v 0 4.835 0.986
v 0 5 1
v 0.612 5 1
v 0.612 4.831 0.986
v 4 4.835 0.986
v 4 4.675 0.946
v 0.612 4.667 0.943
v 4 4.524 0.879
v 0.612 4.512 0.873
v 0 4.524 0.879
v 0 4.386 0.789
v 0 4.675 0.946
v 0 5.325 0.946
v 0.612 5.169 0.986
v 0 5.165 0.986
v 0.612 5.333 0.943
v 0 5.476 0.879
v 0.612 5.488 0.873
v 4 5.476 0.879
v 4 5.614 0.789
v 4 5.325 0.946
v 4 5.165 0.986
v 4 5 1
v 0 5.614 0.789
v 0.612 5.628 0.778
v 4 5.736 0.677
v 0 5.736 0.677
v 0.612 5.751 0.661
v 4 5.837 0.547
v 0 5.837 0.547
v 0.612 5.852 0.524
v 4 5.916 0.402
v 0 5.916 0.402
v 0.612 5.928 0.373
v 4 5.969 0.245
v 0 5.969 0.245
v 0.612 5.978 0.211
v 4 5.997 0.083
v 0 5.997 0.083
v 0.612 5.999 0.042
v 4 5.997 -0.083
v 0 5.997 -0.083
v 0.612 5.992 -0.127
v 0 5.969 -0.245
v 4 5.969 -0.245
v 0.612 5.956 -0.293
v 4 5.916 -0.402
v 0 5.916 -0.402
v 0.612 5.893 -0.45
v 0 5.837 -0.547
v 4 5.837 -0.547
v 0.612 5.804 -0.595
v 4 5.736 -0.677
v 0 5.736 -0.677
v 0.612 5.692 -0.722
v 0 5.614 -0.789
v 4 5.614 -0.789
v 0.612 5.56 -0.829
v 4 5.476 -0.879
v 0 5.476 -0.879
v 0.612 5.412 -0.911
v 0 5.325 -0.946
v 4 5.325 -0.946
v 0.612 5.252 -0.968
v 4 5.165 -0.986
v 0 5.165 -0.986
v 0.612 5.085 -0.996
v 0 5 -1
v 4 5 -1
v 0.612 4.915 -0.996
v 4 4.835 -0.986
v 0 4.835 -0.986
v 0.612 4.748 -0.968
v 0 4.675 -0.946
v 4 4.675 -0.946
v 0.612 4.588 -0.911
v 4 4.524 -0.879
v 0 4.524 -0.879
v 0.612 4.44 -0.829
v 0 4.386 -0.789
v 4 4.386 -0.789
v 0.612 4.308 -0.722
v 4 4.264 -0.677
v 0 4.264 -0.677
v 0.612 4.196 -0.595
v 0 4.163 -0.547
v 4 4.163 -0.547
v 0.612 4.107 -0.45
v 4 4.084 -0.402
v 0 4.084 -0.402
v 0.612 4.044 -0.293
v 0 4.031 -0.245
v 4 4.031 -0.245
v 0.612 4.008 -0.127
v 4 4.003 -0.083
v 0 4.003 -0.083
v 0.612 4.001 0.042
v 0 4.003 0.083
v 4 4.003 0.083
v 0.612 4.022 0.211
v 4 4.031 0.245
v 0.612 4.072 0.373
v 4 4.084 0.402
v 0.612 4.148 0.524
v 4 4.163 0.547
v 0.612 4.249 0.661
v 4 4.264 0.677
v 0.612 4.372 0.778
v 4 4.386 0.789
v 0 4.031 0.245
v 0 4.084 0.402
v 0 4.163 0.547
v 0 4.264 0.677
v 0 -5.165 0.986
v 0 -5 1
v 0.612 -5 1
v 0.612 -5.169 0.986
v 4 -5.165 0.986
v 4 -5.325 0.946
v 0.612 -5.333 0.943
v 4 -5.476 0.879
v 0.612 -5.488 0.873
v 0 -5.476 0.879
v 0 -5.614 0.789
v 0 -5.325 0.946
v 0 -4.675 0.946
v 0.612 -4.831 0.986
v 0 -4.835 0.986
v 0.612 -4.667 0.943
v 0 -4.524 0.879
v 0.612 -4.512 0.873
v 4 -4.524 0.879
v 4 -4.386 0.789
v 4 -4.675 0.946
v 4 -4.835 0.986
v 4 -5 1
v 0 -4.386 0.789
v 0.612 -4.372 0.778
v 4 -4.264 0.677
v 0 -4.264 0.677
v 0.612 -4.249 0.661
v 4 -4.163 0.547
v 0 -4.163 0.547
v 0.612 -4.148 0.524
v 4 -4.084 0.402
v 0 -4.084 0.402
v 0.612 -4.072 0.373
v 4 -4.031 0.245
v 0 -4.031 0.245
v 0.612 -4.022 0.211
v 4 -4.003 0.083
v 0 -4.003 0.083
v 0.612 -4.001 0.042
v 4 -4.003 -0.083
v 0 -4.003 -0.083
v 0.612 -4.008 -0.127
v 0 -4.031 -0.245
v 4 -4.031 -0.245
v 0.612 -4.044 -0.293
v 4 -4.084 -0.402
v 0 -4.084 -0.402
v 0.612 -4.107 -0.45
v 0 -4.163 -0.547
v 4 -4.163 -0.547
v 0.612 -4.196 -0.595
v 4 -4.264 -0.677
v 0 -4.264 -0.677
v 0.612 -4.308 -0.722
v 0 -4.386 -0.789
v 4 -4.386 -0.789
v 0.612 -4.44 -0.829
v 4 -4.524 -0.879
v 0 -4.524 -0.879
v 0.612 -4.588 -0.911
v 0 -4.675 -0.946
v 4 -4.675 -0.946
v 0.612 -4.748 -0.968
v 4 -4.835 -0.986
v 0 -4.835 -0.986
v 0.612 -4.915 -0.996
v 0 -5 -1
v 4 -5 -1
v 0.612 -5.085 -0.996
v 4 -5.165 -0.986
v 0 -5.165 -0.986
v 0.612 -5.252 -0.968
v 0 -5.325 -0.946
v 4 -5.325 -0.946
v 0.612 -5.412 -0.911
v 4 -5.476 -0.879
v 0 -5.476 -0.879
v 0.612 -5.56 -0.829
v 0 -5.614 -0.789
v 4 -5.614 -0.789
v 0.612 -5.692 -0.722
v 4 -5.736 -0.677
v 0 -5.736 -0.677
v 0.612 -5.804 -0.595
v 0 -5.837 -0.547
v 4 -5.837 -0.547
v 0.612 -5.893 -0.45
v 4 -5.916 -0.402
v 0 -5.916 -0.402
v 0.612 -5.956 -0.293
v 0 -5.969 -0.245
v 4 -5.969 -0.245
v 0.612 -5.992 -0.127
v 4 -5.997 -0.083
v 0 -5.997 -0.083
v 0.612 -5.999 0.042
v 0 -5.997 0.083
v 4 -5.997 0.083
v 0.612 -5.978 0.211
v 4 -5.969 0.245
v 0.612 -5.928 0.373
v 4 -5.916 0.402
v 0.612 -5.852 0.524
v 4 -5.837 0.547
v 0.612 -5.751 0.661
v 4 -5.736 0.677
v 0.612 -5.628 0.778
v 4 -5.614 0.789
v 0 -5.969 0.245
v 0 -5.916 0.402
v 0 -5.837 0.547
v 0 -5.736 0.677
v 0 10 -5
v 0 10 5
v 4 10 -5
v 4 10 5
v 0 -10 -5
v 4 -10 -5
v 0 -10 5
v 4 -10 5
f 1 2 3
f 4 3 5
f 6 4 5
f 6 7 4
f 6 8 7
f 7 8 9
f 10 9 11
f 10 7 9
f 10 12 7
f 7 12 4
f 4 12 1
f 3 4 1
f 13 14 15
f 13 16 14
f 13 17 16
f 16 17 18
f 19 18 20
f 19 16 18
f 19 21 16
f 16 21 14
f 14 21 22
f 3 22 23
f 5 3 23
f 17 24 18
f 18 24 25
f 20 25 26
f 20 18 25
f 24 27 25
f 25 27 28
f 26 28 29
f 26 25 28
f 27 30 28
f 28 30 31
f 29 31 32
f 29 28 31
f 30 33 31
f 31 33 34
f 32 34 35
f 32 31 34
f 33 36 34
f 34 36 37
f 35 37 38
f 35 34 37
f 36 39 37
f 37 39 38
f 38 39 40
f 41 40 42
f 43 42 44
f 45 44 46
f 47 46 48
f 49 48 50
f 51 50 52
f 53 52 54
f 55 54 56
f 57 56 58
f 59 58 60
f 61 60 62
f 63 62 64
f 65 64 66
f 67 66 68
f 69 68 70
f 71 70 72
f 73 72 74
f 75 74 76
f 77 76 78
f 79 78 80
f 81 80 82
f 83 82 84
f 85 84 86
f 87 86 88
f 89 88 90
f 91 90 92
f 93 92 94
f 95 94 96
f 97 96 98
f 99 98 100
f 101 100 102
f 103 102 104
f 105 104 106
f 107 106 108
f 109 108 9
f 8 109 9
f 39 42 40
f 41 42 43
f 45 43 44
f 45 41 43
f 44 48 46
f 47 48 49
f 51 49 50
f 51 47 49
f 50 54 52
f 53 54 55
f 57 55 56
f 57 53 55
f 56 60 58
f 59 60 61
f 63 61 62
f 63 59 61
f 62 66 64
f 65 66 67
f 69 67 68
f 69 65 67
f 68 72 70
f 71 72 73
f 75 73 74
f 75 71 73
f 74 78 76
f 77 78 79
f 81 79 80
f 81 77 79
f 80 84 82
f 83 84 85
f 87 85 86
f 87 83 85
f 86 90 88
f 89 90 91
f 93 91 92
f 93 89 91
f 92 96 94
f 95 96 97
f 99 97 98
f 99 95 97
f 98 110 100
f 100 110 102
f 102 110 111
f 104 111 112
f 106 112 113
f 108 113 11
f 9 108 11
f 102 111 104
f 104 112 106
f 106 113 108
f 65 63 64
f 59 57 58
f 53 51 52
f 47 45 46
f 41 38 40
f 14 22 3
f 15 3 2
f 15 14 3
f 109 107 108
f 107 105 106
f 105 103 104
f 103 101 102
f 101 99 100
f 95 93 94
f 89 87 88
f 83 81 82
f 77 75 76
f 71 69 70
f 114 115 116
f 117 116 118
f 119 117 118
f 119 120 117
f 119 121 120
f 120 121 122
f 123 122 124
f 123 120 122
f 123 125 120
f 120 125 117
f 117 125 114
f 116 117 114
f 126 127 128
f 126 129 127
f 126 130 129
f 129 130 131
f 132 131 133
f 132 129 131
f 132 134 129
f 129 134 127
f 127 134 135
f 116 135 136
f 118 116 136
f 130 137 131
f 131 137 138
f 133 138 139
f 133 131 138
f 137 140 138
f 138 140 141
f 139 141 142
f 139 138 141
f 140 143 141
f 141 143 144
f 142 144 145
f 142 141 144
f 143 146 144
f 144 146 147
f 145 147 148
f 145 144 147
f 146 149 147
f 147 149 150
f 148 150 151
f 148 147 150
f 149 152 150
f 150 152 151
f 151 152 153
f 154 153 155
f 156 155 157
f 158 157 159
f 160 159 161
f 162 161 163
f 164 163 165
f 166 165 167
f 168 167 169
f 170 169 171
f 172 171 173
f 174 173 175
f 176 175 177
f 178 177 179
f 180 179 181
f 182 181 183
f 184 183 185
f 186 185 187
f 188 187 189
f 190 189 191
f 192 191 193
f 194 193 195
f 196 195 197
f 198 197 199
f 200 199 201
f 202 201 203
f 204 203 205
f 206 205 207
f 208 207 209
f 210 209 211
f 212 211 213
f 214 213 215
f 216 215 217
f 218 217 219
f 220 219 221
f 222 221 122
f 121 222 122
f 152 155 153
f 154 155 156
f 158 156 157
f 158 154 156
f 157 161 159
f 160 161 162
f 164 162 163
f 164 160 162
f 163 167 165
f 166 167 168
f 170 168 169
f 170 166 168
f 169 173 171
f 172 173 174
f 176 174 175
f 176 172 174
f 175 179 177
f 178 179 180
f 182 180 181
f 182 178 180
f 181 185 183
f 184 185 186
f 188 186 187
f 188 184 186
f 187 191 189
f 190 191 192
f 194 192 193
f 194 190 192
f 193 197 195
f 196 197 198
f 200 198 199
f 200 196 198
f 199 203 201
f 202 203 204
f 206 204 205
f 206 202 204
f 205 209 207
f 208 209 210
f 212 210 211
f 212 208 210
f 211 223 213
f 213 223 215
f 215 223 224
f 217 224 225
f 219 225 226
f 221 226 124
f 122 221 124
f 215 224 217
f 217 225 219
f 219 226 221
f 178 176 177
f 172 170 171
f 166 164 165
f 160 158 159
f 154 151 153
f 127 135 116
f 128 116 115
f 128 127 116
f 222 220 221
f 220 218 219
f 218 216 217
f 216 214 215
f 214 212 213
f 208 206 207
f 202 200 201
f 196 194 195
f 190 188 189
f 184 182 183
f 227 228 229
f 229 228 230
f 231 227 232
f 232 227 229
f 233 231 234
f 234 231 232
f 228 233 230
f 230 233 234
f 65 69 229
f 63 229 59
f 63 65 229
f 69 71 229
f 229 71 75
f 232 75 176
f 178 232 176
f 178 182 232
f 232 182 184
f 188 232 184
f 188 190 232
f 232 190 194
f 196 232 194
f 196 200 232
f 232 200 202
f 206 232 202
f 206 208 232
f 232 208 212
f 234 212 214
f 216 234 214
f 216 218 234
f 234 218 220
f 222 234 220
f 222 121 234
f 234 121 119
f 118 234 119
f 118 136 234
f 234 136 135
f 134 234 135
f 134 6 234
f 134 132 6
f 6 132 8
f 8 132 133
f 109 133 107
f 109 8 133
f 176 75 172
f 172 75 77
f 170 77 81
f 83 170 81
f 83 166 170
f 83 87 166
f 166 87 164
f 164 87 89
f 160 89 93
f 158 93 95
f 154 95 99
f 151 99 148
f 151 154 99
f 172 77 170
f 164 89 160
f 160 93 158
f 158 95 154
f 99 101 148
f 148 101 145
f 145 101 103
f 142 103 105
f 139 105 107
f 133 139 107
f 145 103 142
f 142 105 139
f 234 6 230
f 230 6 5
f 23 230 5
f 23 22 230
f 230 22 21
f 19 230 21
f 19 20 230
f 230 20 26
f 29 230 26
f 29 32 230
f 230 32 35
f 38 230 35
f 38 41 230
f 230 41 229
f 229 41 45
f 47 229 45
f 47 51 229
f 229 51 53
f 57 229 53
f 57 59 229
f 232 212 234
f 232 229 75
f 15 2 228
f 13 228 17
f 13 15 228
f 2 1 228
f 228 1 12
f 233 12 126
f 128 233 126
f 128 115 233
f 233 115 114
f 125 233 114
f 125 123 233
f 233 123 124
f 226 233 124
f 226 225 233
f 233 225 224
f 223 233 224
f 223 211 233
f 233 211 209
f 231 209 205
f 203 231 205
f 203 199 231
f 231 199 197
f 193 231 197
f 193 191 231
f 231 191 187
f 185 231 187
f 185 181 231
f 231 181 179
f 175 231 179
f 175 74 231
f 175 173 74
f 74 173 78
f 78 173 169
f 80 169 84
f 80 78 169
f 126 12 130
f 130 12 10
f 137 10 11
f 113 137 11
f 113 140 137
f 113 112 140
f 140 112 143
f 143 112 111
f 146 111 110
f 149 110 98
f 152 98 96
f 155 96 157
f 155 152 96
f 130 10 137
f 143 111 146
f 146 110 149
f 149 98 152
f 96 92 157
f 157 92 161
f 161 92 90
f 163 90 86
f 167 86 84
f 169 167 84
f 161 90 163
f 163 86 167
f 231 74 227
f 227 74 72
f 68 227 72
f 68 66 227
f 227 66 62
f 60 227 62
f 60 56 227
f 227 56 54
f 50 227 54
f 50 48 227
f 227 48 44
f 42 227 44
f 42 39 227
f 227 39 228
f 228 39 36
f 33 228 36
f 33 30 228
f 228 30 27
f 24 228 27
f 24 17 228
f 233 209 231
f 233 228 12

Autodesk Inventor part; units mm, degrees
ref_plane "YZ Plane" through (0, 0, 0) normal (1, 0, 0) x (0, 1, 0)
ref_plane "XZ Plane" through (0, 0, 0) normal (0, 1, 0) x (-1, 0, 0)
ref_plane "XY Plane" through (0, 0, 0) normal (0, 0, 1) x (1, 0, 0)
sketch "スケッチ1" plane through (0, 0, 0) normal (1, 0, 0) x (0, 1, 0)
  line L0 (-10, 5) -> (10, 5)
  line L1 (10, 5) -> (10, -5)
  line L2 (10, -5) -> (-10, -5)
  line L3 (-10, -5) -> (-10, 5)
  point P0 (0, 0)
  dimension "d0" = 20
  dimension "d2" = 10
  dimension "d3" = 10
  dimension "d4" = 5
extrude "押し出し1" add sketch "スケッチ1" along normal blind 4
sketch "スケッチ2" plane through (4, 0, 0) normal (1, 0, 0) x (0, 0, -1)
  line L0 (5, -10) -> (5, 10) projected
  line L1 (5, 10) -> (-5, 10) projected
  circle A0 centre (0, 5) radius 1
  circle A1 centre (0, -5) radius 1
  point P0 (0, 0)
  dimension "d7" = 2
  dimension "d9" = 10
  dimension "d10" = 5
  dimension "d11" = 5
  dimension "d12" = 5
hole "穴1" at (4, 5, 0) at (4, -5, 0) direction (-1, 0, 0) diameter 2 end through all
properties part number "Leg_Link_Shim" material "アセタール樹脂、白"
